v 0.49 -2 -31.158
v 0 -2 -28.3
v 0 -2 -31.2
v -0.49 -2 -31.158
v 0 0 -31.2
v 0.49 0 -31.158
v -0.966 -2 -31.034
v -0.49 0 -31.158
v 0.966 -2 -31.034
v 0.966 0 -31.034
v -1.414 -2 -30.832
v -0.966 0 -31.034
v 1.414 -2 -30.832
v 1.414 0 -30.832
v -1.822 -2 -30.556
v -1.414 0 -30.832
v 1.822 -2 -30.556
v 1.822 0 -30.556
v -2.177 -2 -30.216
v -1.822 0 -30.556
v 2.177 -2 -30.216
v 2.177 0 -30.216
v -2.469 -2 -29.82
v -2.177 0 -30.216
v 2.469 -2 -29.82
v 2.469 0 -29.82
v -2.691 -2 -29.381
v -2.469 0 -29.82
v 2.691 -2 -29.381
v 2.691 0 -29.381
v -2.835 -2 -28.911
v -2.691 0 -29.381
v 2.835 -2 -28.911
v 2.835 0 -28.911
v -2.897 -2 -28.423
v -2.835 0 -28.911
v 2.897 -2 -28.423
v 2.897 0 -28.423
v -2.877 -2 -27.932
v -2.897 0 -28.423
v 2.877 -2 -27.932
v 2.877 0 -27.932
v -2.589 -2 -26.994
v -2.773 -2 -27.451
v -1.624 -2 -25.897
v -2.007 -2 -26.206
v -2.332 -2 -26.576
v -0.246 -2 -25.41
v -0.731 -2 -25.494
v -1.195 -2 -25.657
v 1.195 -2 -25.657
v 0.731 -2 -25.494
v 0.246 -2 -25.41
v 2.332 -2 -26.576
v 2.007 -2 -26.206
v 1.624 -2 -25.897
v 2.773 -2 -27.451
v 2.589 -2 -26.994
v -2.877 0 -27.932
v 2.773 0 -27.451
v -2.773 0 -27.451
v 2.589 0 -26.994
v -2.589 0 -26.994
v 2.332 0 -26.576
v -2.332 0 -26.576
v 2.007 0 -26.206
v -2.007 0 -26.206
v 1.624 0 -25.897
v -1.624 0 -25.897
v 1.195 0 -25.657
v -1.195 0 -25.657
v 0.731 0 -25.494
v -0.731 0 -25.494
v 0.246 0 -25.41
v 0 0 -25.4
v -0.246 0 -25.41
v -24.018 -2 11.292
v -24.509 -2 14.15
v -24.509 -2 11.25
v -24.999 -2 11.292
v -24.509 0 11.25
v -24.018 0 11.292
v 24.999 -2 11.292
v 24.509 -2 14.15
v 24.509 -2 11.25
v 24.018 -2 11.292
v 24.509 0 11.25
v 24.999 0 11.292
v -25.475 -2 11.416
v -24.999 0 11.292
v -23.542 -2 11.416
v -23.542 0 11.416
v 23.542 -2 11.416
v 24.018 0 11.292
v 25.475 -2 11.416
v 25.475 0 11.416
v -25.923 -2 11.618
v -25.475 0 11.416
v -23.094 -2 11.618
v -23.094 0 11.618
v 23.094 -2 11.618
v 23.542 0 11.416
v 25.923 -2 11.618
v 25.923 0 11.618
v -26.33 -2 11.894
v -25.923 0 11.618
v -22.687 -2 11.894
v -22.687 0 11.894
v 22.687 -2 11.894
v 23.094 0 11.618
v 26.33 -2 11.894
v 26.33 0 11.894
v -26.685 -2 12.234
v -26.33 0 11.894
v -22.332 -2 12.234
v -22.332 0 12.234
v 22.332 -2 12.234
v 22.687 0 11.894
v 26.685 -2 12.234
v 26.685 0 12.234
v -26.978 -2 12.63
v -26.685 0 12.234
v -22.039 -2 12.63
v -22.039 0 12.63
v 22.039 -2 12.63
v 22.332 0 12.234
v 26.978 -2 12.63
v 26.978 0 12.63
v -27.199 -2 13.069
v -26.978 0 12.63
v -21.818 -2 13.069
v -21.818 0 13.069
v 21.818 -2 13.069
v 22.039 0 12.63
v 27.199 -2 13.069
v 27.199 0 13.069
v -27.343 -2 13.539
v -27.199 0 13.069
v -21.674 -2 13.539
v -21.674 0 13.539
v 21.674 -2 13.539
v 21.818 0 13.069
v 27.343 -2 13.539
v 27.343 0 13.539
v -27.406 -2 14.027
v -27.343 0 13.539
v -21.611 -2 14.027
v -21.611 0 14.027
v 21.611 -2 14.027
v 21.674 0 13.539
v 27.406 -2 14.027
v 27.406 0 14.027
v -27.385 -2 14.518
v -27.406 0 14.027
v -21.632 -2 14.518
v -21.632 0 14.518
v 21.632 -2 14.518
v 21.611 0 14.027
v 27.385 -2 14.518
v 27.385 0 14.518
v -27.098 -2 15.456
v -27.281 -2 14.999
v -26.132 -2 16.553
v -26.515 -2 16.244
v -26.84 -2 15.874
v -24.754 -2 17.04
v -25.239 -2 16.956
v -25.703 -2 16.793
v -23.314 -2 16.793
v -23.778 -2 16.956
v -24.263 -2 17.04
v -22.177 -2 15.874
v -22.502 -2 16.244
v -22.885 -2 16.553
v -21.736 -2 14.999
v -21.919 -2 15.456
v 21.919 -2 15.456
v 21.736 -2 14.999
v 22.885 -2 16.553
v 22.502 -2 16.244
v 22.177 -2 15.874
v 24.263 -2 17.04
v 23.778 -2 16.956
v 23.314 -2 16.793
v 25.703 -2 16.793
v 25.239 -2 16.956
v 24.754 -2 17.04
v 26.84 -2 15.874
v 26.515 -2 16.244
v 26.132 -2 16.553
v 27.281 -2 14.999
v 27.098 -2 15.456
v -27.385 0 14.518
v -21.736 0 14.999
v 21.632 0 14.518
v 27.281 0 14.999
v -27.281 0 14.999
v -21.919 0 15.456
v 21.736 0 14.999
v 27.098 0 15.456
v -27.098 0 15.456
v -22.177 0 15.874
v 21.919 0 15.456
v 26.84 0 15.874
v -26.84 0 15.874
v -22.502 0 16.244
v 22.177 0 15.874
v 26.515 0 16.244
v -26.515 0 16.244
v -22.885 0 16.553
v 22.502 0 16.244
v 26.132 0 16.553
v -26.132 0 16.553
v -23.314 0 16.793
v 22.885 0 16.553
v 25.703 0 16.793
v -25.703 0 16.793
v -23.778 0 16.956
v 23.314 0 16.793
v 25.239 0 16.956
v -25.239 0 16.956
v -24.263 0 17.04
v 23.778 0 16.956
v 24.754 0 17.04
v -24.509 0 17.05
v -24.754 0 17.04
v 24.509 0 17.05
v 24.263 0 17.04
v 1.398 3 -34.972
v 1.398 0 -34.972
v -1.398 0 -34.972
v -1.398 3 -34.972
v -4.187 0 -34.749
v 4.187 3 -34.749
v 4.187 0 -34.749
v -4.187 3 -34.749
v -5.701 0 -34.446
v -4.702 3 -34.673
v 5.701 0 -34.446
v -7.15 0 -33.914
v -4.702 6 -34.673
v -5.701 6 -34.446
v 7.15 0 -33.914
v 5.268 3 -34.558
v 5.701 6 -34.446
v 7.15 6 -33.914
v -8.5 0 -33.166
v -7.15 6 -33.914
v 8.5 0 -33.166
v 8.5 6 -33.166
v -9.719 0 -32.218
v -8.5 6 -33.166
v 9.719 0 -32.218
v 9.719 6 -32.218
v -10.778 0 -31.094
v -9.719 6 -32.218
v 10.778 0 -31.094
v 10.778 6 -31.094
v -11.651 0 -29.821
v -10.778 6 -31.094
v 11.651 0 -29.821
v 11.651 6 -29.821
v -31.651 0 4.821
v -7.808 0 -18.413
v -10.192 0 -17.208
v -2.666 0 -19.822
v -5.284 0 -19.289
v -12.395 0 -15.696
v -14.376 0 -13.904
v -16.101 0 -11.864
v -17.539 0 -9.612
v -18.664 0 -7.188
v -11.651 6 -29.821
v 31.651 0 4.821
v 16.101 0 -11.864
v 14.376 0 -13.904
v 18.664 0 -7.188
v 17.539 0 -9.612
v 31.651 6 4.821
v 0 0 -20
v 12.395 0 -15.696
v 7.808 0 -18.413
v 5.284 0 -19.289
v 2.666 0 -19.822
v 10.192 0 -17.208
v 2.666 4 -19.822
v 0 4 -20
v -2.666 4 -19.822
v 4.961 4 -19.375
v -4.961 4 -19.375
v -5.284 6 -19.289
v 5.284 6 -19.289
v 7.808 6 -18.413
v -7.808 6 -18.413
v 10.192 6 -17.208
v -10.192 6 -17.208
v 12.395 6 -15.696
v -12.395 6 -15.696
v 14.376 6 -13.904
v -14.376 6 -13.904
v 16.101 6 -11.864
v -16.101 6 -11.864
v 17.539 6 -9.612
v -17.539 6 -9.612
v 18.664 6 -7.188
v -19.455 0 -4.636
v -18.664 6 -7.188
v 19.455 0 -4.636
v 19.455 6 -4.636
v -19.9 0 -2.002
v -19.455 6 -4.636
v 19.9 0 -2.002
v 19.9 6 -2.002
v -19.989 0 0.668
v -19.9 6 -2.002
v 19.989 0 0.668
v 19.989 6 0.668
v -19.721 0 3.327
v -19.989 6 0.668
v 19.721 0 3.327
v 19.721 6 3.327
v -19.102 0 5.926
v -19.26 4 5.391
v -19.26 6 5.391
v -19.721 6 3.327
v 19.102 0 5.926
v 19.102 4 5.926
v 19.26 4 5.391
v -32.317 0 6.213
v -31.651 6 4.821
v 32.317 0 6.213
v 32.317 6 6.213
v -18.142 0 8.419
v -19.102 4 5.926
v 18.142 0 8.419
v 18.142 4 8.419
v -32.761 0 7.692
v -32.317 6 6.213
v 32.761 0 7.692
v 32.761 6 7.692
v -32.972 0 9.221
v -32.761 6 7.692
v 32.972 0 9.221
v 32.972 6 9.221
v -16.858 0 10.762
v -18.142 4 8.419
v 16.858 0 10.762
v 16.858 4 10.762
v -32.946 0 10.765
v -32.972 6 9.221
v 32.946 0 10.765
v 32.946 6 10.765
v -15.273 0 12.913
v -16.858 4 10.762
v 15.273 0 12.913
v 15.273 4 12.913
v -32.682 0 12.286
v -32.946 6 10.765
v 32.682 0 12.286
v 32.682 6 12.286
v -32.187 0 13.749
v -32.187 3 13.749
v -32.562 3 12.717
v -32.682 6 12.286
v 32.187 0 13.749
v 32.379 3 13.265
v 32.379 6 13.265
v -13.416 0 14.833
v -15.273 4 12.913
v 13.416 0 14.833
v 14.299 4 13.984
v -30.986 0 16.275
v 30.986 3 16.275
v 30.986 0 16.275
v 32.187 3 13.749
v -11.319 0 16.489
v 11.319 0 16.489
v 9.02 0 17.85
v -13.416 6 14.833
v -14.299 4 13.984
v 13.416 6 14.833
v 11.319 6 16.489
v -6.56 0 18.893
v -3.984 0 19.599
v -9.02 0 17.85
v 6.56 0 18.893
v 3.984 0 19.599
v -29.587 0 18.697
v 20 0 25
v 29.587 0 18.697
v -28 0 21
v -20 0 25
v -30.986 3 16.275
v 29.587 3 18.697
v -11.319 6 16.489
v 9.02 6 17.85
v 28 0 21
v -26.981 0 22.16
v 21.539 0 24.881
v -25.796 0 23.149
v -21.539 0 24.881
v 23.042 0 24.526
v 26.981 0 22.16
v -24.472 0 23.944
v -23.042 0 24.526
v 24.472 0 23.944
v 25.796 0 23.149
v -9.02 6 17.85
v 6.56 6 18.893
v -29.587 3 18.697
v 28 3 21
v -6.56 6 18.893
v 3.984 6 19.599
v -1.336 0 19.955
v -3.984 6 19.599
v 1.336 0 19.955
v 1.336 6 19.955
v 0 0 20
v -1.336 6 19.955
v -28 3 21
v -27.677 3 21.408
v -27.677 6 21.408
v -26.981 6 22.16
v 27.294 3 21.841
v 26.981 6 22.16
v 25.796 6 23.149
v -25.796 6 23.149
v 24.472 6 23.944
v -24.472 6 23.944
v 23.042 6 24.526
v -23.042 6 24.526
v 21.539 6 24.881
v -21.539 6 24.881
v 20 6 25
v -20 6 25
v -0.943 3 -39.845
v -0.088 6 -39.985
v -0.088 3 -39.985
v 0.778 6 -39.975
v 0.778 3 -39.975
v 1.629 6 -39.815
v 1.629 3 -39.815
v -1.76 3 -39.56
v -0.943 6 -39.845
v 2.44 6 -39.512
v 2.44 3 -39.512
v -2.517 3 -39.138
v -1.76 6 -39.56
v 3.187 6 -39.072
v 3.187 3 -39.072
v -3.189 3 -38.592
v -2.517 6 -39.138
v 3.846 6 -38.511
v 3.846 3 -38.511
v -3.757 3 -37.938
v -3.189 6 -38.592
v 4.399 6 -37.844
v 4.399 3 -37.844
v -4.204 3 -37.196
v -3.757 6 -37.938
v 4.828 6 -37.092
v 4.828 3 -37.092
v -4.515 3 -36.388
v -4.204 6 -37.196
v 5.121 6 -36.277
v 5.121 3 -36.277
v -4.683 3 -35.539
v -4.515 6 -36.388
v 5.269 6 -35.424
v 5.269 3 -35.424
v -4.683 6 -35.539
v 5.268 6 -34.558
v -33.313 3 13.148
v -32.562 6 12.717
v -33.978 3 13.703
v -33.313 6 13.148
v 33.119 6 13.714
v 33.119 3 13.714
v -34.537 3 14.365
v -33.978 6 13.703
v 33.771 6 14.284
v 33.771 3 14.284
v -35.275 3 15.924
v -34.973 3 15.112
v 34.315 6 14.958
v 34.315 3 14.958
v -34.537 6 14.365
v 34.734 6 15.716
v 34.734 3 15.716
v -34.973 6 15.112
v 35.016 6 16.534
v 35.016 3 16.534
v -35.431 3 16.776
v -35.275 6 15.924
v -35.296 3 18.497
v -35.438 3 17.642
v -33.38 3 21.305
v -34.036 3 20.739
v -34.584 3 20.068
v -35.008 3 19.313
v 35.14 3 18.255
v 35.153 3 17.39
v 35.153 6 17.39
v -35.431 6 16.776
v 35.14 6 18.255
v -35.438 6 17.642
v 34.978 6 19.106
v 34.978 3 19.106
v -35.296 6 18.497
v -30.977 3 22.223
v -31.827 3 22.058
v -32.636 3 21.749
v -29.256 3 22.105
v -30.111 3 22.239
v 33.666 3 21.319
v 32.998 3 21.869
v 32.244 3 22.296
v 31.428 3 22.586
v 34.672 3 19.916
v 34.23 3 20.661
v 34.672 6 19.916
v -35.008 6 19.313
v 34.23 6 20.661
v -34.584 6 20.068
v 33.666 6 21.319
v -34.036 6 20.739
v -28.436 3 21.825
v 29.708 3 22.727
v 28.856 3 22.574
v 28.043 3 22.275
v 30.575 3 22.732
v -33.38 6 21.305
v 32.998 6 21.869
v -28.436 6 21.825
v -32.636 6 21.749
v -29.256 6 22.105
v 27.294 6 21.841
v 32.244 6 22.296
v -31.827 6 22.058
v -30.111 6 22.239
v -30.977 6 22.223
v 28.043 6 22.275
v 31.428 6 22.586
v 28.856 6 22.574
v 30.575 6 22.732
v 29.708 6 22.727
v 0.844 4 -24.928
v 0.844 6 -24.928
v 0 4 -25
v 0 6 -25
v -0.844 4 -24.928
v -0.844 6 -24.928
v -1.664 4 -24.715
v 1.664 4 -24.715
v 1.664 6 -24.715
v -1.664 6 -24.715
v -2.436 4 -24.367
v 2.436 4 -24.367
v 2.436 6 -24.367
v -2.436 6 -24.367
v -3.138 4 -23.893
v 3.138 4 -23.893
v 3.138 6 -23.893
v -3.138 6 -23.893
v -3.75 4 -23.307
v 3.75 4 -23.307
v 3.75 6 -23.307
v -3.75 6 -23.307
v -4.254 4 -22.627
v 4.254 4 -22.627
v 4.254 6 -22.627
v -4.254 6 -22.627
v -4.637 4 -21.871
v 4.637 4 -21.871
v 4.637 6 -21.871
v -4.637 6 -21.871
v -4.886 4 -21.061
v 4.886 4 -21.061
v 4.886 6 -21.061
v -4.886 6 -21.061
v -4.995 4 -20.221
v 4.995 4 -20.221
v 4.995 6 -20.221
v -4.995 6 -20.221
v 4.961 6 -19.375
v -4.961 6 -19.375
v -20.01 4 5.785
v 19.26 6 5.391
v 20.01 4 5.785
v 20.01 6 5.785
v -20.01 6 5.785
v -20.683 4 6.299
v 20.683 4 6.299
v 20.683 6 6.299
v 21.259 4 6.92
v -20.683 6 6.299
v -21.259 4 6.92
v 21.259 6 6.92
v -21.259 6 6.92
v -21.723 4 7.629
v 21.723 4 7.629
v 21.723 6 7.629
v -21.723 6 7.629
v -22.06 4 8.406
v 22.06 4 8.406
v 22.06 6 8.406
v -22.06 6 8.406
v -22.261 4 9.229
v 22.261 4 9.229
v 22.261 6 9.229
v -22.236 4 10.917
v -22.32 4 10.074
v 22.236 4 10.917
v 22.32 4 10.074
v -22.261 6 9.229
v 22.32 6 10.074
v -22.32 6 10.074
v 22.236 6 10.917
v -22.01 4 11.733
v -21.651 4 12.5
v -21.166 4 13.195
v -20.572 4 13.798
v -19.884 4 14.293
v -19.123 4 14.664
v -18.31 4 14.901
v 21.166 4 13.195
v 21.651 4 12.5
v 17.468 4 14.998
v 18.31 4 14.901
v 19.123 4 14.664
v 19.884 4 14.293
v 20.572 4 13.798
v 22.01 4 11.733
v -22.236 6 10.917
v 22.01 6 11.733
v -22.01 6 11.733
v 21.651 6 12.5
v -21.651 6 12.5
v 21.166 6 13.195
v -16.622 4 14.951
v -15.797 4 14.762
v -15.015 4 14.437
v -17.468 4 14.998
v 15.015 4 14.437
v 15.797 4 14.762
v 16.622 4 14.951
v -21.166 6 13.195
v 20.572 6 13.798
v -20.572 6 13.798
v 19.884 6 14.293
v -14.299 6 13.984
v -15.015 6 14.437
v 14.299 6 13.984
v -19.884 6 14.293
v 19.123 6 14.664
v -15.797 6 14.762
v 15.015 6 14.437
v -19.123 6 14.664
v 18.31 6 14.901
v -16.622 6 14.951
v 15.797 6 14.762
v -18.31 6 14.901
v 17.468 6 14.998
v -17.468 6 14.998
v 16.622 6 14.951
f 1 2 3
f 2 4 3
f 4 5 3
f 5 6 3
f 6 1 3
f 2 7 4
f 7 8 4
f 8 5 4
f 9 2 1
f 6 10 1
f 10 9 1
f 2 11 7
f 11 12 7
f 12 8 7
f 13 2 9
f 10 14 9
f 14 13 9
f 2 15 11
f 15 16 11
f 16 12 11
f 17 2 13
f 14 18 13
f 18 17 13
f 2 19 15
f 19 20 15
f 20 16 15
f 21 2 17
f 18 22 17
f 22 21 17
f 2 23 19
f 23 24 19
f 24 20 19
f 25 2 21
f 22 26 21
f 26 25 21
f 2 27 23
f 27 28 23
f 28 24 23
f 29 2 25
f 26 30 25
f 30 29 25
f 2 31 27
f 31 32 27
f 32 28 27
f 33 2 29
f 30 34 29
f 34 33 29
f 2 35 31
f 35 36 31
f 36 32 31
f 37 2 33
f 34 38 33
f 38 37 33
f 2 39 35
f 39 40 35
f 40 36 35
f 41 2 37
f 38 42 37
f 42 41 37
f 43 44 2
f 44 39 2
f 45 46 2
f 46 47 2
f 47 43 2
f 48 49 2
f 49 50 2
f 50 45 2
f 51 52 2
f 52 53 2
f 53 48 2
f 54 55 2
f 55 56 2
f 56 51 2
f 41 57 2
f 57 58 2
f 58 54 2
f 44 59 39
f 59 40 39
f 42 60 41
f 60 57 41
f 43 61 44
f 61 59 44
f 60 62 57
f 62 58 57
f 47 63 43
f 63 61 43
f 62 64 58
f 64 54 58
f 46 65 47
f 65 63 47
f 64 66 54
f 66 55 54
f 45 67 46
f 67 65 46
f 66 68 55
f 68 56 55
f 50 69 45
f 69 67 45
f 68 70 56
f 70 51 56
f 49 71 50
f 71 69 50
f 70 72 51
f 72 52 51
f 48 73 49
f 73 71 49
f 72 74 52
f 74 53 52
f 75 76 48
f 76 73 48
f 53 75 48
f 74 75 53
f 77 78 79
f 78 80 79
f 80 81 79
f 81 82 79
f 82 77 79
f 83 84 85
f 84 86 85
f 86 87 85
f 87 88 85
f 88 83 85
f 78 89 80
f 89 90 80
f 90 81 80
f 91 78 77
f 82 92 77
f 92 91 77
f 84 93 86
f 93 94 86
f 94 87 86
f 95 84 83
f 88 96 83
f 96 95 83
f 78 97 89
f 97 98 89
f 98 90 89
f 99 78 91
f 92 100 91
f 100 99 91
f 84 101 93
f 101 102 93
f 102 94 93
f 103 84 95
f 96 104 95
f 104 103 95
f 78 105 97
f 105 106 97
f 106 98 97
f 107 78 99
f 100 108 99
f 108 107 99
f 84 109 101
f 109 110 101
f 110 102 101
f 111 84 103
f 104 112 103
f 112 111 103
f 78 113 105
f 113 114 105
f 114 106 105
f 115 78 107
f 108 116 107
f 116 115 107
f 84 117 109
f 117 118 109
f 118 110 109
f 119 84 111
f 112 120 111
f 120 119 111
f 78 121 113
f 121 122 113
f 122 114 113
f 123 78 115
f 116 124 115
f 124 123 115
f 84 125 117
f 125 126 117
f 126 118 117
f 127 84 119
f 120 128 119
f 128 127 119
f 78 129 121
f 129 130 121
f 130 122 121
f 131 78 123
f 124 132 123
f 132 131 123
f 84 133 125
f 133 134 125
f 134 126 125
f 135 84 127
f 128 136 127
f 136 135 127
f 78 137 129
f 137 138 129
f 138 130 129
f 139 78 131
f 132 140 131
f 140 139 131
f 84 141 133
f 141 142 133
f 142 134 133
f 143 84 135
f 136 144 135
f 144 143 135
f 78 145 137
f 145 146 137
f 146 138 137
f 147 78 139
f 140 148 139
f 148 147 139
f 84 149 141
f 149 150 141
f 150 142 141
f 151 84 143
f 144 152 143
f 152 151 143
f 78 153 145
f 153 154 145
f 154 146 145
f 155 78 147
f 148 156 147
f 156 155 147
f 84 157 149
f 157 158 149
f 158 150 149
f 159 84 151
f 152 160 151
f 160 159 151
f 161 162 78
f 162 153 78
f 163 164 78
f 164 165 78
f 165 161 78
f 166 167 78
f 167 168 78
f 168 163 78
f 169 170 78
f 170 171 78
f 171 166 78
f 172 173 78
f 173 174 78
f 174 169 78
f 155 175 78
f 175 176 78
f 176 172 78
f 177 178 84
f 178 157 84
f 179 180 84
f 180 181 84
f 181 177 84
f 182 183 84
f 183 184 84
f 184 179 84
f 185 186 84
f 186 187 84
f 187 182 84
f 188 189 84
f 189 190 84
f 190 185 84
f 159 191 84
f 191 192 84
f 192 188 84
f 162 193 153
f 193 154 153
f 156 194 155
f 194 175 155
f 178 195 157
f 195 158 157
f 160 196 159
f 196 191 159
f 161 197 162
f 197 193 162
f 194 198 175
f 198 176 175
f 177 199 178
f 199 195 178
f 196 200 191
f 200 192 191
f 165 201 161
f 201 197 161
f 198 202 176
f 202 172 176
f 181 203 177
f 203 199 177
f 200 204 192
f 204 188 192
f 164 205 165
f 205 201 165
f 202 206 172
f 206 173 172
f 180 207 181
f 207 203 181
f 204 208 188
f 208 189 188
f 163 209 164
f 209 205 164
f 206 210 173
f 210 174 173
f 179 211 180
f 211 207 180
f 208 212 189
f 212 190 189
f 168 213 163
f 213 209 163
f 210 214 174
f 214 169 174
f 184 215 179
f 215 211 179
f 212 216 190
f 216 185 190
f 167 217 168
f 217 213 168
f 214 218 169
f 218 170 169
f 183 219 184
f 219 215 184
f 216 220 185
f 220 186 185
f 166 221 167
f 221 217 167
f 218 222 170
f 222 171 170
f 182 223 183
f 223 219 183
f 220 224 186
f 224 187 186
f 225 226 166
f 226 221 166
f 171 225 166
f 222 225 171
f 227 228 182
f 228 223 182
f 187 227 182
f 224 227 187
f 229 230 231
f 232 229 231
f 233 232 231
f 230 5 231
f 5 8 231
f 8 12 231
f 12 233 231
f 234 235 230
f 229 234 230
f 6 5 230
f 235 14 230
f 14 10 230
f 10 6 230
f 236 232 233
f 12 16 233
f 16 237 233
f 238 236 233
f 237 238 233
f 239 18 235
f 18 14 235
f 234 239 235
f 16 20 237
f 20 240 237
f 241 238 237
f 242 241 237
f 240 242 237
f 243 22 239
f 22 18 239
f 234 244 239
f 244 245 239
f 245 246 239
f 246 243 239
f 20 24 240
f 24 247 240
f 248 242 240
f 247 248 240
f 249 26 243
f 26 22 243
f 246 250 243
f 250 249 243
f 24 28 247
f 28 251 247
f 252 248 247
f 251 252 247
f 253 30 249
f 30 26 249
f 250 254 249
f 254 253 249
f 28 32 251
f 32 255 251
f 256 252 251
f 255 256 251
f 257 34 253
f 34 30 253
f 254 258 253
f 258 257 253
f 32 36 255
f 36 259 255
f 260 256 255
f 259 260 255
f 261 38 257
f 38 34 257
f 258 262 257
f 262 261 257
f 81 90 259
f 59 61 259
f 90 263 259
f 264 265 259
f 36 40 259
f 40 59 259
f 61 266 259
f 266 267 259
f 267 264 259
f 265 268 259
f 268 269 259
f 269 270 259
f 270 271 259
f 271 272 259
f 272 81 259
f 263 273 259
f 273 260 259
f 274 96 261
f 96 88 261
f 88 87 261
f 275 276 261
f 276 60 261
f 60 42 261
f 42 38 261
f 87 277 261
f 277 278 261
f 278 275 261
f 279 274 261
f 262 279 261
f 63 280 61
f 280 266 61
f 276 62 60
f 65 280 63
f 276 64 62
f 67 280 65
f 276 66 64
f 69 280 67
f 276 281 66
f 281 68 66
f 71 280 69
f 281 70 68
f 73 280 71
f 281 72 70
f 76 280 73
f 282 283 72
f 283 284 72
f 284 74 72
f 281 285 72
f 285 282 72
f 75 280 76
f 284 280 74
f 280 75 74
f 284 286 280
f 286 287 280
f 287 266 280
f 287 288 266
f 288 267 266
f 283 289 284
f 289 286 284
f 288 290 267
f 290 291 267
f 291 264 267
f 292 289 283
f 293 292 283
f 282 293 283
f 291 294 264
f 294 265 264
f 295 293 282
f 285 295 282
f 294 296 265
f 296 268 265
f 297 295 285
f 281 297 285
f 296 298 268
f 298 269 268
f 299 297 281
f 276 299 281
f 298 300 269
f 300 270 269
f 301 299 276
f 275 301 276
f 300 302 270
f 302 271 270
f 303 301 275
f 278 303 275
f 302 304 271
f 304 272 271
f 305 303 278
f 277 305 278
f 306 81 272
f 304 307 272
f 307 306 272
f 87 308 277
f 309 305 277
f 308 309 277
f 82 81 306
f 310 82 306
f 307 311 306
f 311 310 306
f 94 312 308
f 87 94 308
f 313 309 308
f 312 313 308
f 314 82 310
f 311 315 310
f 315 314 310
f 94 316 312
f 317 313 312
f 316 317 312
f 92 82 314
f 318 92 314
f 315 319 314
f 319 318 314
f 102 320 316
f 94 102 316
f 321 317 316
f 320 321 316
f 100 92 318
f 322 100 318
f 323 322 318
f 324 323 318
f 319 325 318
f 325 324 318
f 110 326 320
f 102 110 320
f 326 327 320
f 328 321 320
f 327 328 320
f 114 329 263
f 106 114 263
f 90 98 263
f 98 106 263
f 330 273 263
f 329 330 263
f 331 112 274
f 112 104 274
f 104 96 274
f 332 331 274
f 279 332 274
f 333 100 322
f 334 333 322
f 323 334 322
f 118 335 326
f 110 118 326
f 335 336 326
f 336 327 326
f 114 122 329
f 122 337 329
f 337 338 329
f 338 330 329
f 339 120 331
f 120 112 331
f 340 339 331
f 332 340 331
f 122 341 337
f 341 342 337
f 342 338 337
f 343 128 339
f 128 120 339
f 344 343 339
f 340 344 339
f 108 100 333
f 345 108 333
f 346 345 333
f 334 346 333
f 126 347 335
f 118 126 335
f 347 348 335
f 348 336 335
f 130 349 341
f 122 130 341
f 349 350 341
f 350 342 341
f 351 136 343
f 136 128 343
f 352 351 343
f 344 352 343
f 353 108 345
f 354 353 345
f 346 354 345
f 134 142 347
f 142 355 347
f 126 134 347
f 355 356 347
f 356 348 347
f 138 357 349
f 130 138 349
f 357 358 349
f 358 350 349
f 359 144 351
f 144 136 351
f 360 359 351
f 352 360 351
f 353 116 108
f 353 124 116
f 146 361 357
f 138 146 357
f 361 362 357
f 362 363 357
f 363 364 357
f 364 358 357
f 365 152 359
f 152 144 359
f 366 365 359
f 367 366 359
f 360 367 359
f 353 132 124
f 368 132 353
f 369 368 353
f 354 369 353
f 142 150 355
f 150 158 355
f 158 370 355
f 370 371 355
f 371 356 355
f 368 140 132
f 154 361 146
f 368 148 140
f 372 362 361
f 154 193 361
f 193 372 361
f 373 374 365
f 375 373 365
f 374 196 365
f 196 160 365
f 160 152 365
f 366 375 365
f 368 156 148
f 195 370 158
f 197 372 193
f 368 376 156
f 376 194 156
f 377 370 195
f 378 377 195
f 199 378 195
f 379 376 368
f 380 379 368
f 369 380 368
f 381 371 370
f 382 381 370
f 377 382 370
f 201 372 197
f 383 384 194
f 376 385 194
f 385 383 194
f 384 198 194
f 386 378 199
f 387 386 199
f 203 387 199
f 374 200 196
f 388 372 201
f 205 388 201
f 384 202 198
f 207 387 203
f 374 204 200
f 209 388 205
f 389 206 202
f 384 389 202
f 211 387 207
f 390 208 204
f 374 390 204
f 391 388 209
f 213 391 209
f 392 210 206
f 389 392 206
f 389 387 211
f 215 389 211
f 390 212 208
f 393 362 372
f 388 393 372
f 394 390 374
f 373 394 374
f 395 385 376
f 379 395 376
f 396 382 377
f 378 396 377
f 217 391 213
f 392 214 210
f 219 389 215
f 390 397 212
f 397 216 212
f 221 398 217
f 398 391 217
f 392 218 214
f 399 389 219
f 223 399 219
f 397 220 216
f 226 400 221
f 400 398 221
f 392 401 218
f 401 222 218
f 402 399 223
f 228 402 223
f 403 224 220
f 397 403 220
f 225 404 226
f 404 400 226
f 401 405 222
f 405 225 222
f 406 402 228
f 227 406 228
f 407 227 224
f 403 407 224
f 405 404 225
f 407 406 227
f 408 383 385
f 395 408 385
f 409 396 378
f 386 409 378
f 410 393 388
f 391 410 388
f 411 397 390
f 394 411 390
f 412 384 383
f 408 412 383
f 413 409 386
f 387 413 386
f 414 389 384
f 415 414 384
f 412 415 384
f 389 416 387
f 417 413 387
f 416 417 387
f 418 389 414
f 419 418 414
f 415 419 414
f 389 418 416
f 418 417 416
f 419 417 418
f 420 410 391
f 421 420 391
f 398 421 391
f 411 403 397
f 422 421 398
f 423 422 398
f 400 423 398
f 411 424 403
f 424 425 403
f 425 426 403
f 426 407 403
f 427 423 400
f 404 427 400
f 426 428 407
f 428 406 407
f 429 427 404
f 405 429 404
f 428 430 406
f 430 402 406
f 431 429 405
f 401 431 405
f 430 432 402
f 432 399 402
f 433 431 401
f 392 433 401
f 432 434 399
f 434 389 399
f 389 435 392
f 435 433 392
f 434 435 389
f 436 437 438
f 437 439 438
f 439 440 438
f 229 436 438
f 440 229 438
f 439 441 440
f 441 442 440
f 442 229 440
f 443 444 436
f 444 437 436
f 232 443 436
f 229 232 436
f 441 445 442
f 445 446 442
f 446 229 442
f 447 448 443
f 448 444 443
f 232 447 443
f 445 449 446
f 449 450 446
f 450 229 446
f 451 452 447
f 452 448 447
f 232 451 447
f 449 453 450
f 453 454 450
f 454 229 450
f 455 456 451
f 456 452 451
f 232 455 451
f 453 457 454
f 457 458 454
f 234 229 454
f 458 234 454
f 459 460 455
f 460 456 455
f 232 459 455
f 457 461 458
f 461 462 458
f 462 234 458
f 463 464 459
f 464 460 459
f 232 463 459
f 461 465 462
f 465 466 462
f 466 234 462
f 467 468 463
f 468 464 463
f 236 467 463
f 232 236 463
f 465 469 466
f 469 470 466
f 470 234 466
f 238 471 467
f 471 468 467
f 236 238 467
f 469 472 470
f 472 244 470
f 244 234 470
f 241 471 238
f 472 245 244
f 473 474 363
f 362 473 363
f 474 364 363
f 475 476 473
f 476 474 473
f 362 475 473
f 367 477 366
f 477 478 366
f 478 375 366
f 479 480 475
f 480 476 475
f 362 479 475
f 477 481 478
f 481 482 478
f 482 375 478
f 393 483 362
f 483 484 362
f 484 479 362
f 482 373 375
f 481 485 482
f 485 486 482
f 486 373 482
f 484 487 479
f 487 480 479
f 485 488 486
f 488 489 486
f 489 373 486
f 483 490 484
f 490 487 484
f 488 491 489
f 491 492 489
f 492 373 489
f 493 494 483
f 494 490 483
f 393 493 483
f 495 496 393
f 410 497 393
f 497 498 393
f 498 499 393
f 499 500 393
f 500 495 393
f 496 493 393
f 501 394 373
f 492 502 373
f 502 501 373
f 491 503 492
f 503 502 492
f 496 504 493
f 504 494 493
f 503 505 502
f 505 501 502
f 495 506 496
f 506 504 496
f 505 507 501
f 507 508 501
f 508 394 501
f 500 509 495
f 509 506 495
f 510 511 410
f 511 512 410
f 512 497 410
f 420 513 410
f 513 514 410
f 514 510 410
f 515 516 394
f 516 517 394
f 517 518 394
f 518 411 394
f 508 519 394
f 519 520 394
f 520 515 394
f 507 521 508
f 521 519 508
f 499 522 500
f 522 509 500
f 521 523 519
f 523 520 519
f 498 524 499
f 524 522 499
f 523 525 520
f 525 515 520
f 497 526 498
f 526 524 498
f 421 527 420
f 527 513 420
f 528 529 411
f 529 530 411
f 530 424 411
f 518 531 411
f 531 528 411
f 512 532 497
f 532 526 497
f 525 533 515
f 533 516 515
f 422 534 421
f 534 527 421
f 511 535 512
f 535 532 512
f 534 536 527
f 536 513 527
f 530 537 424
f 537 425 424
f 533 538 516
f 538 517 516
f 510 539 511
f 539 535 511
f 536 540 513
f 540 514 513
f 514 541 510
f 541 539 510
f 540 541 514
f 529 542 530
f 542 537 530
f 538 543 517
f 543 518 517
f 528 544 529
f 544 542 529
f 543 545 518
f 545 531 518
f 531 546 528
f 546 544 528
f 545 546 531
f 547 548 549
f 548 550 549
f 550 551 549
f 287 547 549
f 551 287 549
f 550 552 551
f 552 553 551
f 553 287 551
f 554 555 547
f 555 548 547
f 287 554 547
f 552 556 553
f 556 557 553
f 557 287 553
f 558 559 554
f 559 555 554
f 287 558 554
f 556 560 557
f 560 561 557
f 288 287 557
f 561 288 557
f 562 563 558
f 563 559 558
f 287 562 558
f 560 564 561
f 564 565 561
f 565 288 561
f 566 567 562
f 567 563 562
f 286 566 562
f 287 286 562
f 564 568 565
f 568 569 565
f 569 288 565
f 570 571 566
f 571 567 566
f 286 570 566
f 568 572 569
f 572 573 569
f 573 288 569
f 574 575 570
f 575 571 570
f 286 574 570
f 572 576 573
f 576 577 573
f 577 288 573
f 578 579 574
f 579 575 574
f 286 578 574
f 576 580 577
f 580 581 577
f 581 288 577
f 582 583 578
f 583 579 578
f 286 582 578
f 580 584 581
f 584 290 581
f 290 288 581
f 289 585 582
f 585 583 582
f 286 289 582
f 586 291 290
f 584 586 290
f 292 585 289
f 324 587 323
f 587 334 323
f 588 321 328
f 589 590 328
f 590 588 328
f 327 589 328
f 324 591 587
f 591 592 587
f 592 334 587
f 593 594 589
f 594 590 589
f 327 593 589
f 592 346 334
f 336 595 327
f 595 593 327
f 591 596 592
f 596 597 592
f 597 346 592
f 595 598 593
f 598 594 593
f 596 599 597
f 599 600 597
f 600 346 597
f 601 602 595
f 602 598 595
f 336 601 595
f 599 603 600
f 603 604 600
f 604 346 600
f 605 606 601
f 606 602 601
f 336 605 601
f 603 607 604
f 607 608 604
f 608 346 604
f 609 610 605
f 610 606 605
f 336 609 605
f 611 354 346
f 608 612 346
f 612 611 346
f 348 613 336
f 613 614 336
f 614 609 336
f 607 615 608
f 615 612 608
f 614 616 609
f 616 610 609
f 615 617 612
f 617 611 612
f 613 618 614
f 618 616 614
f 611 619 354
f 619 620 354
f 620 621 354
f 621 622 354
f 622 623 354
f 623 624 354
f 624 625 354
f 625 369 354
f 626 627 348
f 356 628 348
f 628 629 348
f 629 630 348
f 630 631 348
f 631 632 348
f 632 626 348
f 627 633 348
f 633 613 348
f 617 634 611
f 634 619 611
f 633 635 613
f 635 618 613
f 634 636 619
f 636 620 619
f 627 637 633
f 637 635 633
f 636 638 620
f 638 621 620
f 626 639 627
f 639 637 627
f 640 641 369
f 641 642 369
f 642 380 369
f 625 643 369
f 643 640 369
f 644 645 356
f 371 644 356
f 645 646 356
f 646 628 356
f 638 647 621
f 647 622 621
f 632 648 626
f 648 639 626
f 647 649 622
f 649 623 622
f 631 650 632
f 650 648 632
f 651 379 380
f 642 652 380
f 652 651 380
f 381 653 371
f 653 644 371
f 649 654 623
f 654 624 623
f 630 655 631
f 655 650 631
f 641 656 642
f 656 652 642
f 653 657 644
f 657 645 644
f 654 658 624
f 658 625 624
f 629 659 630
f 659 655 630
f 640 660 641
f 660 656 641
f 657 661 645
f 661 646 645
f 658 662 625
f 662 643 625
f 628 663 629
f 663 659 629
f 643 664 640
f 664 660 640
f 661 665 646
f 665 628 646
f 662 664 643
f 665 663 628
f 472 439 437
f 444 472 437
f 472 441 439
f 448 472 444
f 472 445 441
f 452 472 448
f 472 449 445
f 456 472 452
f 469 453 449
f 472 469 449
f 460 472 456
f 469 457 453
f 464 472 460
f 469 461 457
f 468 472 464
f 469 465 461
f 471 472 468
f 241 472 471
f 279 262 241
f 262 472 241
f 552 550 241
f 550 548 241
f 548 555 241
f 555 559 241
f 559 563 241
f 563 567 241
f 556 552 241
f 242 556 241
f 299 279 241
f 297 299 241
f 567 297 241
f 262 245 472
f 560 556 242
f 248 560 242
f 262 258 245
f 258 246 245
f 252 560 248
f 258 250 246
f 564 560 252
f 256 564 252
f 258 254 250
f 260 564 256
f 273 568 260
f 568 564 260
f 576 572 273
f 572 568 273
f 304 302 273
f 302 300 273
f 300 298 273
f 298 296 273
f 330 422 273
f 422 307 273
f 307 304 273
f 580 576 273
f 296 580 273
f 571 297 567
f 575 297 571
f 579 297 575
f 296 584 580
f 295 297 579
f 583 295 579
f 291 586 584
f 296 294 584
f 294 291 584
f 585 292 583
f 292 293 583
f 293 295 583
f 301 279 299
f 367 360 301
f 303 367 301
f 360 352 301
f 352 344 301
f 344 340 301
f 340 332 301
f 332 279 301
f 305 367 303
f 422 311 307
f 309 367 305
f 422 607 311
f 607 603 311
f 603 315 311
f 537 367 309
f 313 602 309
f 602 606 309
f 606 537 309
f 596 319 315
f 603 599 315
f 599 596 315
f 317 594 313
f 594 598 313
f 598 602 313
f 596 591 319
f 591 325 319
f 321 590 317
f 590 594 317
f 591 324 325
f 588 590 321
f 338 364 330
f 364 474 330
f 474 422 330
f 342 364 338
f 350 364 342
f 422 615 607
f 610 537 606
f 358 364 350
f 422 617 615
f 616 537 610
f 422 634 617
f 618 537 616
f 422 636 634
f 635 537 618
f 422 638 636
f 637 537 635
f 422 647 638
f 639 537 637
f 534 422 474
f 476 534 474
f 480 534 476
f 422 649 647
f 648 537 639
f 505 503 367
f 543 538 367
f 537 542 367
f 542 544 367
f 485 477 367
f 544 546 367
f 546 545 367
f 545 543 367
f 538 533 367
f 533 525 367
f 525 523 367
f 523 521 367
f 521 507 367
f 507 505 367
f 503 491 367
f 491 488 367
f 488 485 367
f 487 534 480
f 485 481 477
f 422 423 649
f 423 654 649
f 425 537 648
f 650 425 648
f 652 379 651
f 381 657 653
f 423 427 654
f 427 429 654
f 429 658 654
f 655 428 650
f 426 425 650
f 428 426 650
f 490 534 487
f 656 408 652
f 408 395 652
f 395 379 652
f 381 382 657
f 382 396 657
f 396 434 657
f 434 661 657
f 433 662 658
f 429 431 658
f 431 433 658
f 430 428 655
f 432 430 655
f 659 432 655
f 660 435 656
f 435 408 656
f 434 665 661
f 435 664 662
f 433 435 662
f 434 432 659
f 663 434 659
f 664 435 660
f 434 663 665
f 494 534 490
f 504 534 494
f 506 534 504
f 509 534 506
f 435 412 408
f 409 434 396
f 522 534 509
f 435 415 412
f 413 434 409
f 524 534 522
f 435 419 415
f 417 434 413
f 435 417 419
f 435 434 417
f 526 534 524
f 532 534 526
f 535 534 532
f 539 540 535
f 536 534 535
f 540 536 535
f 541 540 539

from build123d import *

# Parameters (mm, degrees)
SKETCH1_R                = 20
BOSS_EXTRUDE1_DEPTH      = 3.5
SKETCH2_R                = 35
SKETCH2_R_2              = 20
SKETCH2_R_3              = 2.8
BOSS_EXTRUDE2_DEPTH      = 6
BOSS_EXTRUDE3_DEPTH      = 2
BOSS_EXTRUDE3_DEPTH_BACK = 6
SKETCH4_R                = 2.9
SKETCH5_R                = 5
BOSS_EXTRUDE4_DEPTH      = 3
CUT_EXTRUDE1_START       = -10
SKETCH3_R                = 20
CUT_EXTRUDE1_DEPTH       = 10
SKETCH12_R               = 72.135852014
CUT_EXTRUDE2_DEPTH       = 22
FILLET1_R                = 10
CUT_EXTRUDE4_START       = -2
SKETCH15_R               = 5
SKETCH15_R_2             = 20
CUT_EXTRUDE4_DEPTH       = 2


with BuildPart() as part:
    # Sketch1 → Boss-Extrude1 (new body)
    with BuildSketch(Plane(origin=(0, 0, 0), x_dir=(1, 0, 0), z_dir=(0, 1, 0))):
        with Locations(Location((0, 0, 0), (0, 0, 270))):
            Circle(SKETCH1_R)
    extrude(amount=BOSS_EXTRUDE1_DEPTH)

    # Sketch2 → Boss-Extrude2 (add)
    with BuildSketch(Plane(origin=(0, 0, 0), x_dir=(1, 0, 0), z_dir=(0, 1, 0))):
        with Locations(Location((0, 0, 0), (0, 0, 270))):
            Circle(SKETCH2_R)
        with Locations(Location((0, 0, 0), (0, 0, 270))):
            Circle(SKETCH2_R_2, mode=Mode.SUBTRACT)
        with Locations(Location((0, 28.3, 0), (0, 0, 270))):
            Circle(SKETCH2_R_3, mode=Mode.SUBTRACT)
        with Locations(Location((24.508518927, -14.15, 0), (0, 0, 270))):
            Circle(SKETCH2_R_3, mode=Mode.SUBTRACT)
        with Locations(Location((-24.508518927, -14.15, 0), (0, 0, 270))):
            Circle(SKETCH2_R_3, mode=Mode.SUBTRACT)
    extrude(amount=BOSS_EXTRUDE2_DEPTH)

    # Sketch4 → Boss-Extrude3 (add, two sides: drawn at the far end of the back side and taken through both)
    with BuildSketch(Plane.XZ.offset(-BOSS_EXTRUDE3_DEPTH_BACK)):
        with Locations(Location((-24.508518927, 14.15, 0), (0, 0, 270))):
            Circle(SKETCH4_R)
        with Locations(Location((24.508518927, 14.15, 0), (0, 0, 270))):
            Circle(SKETCH4_R)
        with Locations(Location((0, -28.3, 0), (0, 0, 270))):
            Circle(SKETCH4_R)
    extrude(amount=BOSS_EXTRUDE3_DEPTH + BOSS_EXTRUDE3_DEPTH_BACK)

    # Sketch5 → Boss-Extrude4 (add)
    with BuildSketch(Plane(origin=(0, 6, 0), x_dir=(1, 0, 0), z_dir=(0, 1, 0))):
        with Locations((-30.453629482, -17.250404383)):
            Circle(SKETCH5_R)
        with Locations((0.28752632, 34.99881896)):
            Circle(SKETCH5_R)
        with Locations((30.166103162, -17.748414577)):
            Circle(SKETCH5_R)
    extrude(amount=-BOSS_EXTRUDE4_DEPTH)

    # Sketch3 → Cut-Extrude1 (cut)
    with BuildSketch(Plane(origin=(0, 3.5, 0), x_dir=(1, 0, 0), z_dir=(0, 1, 0)).offset(CUT_EXTRUDE1_START)):
        with Locations(Location((0, 0, 0), (0, 0, 270))):
            Circle(SKETCH3_R)
    extrude(amount=CUT_EXTRUDE1_DEPTH, mode=Mode.SUBTRACT)

    # Sketch12 → Cut-Extrude2 (cut)
    with BuildSketch(Plane(origin=(0, 6, 0), x_dir=(1, 0, 0), z_dir=(0, 1, 0))):
        Circle(SKETCH12_R)
        Polygon((0, 50), (-43.301270189, -25), (43.301270189, -25), align=None, mode=Mode.SUBTRACT)
    extrude(amount=-CUT_EXTRUDE2_DEPTH, mode=Mode.SUBTRACT)

    # Fillet1
    # the kernel refuses this fillet: 10 mm, written as the material it takes off along each edge
    with BuildSketch(Plane(origin=(-24.494897428, 19.2960859, 25), x_dir=(1, 0, 0), z_dir=(0, -1, 0))) as fillet1_piece_1_section:
        with BuildLine():
            CenterArc((4.494897428, -10), FILLET1_R, 90, 53.130102354)
            ThreePointArc((-3.505102572, -4), (-1.828638885, -1.933326291), (0, 0))
            Line((0, 0), (4.494897428, 0))
        make_face()
    fillet1_piece_1 = extrude(amount=32.5921718, mode=Mode.PRIVATE)
    fillet1_piece_1 = fillet1_piece_1 - Plane(origin=(-30.453629482, 4.5, 17.250404383), x_dir=(1, 0, 0), z_dir=(0, 1, 0)) * Cylinder(5, 84, mode=Mode.PRIVATE)
    add(fillet1_piece_1, mode=Mode.SUBTRACT)
    with BuildSketch(Plane(origin=(-24.494897428, 19.2960859, 25), x_dir=(1, 0, 0), z_dir=(0, -1, 0))) as fillet1_piece_2_section:
        with BuildLine():
            CenterArc((4.494897428, -10), FILLET1_R, 90, 53.130102354)
            ThreePointArc((-3.505102572, -4), (-1.828638885, -1.933326291), (0, 0))
            Line((0, 0), (4.494897428, 0))
        make_face()
    fillet1_piece_2 = extrude(amount=32.5921718, mode=Mode.PRIVATE)
    fillet1_piece_2 = split(fillet1_piece_2, bisect_by=Plane(origin=(-27.761621835, 3, 21.309124186), z_dir=(0, -1, 0)), keep=Keep.TOP, mode=Mode.PRIVATE)
    add(fillet1_piece_2, mode=Mode.SUBTRACT)
    with BuildSketch(Plane(origin=(24.494897428, 19.2960859, 25), x_dir=(-1, 0, 0), z_dir=(0, -1, 0))) as fillet1_piece_3_section:
        with BuildLine():
            CenterArc((4.494897428, 10), FILLET1_R, 216.869897646, 53.130102354)
            ThreePointArc((-3.505102572, 4), (-1.828638885, 1.933326291), (0, 0))
            Line((0, 0), (4.494897428, 0))
        make_face()
    fillet1_piece_3 = extrude(amount=32.5921718, mode=Mode.PRIVATE)
    fillet1_piece_3 = fillet1_piece_3 - Plane(origin=(30.166103162, 4.5, 17.748414577), x_dir=(1, 0, 0), z_dir=(0, 1, 0)) * Cylinder(5, 84, mode=Mode.PRIVATE)
    add(fillet1_piece_3, mode=Mode.SUBTRACT)
    with BuildSketch(Plane(origin=(24.494897428, 19.2960859, 25), x_dir=(-1, 0, 0), z_dir=(0, -1, 0))) as fillet1_piece_4_section:
        with BuildLine():
            CenterArc((4.494897428, 10), FILLET1_R, 216.869897646, 53.130102354)
            ThreePointArc((-3.505102572, 4), (-1.828638885, 1.933326291), (0, 0))
            Line((0, 0), (4.494897428, 0))
        make_face()
    fillet1_piece_4 = extrude(amount=32.5921718, mode=Mode.PRIVATE)
    fillet1_piece_4 = split(fillet1_piece_4, bisect_by=Plane(origin=(27.488157838, 3, 21.643747381), z_dir=(0, -1, 0)), keep=Keep.TOP, mode=Mode.PRIVATE)
    add(fillet1_piece_4, mode=Mode.SUBTRACT)
    with BuildSketch(Plane(origin=(-9.403186381, 19.2960859, -33.713203436), x_dir=(-0.5000000000000003, 0, 0.8660254037844386), z_dir=(0, -1, 0))) as fillet1_piece_5_section:
        with BuildLine():
            CenterArc((4.494897428, -10), FILLET1_R, 90, 53.130102354)
            ThreePointArc((-3.505102572, -4), (-1.828638885, -1.933326291), (0, 0))
            Line((0, 0), (4.494897428, 0))
        make_face()
    fillet1_piece_5 = extrude(amount=32.5921718, mode=Mode.PRIVATE)
    fillet1_piece_5 = fillet1_piece_5 - Plane(origin=(0.28752632, 4.5, -34.99881896), x_dir=(1, 0, 0), z_dir=(0, 1, 0)) * Cylinder(5, 84, mode=Mode.PRIVATE)
    add(fillet1_piece_5, mode=Mode.SUBTRACT)
    with BuildSketch(Plane(origin=(-9.403186381, 19.2960859, -33.713203436), x_dir=(-0.5000000000000003, 0, 0.8660254037844386), z_dir=(0, -1, 0))) as fillet1_piece_6_section:
        with BuildLine():
            CenterArc((4.494897428, -10), FILLET1_R, 90, 53.130102354)
            ThreePointArc((-3.505102572, -4), (-1.828638885, -1.933326291), (0, 0))
            Line((0, 0), (4.494897428, 0))
        make_face()
    fillet1_piece_6 = extrude(amount=32.5921718, mode=Mode.PRIVATE)
    fillet1_piece_6 = split(fillet1_piece_6, bisect_by=Plane(origin=(-4.57343196, 3, -34.696831852), z_dir=(0, -1, 0)), keep=Keep.TOP, mode=Mode.PRIVATE)
    add(fillet1_piece_6, mode=Mode.SUBTRACT)
    with BuildSketch(Plane(origin=(-33.898083809, 19.2960859, 8.713203436), x_dir=(0.32181469455231854, 0, 0.9468026734067654), z_dir=(0, -1, 0))) as fillet1_piece_7_section:
        with BuildLine():
            CenterArc((4.558658023, -9.971095222), FILLET1_R, 85.642603122, 53.130102354)
            Line((-2.962352352, -3.380617019), (0, 0))
            ThreePointArc((0, 0), (2.65921718, 0.101166725), (5.31843436, 0))
        make_face()
    fillet1_piece_7 = extrude(amount=32.5921718, mode=Mode.PRIVATE)
    fillet1_piece_7 = fillet1_piece_7 - Plane(origin=(-30.453629482, 4.5, 17.250404383), x_dir=(1, 0, 0), z_dir=(0, 1, 0)) * Cylinder(5, 87, mode=Mode.PRIVATE)
    add(fillet1_piece_7, mode=Mode.SUBTRACT)
    with BuildSketch(Plane(origin=(-33.898083809, 19.2960859, 8.713203436), x_dir=(0.32181469455231854, 0, 0.9468026734067654), z_dir=(0, -1, 0))) as fillet1_piece_8_section:
        with BuildLine():
            CenterArc((4.558658023, -9.971095222), FILLET1_R, 85.642603122, 53.130102354)
            Line((-2.962352352, -3.380617019), (0, 0))
            ThreePointArc((0, 0), (2.65921718, 0.101166725), (5.31843436, 0))
        make_face()
    fillet1_piece_8 = extrude(amount=32.5921718, mode=Mode.PRIVATE)
    fillet1_piece_8 = split(fillet1_piece_8, bisect_by=Plane(origin=(-32.488113984, 3, 12.9835693), z_dir=(0, -1, 0)), keep=Keep.TOP, mode=Mode.PRIVATE)
    add(fillet1_piece_8, mode=Mode.SUBTRACT)
    with BuildSketch(Plane(origin=(33.898083809, 19.2960859, 8.713203436), x_dir=(-0.5000000000000012, 0, -0.8660254037844382), z_dir=(0, -1, 0))) as fillet1_piece_9_section:
        with BuildLine():
            CenterArc((4.494897428, -10), FILLET1_R, 90, 53.130102354)
            ThreePointArc((-3.505102572, -4), (-1.828638885, -1.933326291), (0, 0))
            Line((0, 0), (4.494897428, 0))
        make_face()
    fillet1_piece_9 = extrude(amount=32.5921718, mode=Mode.PRIVATE)
    fillet1_piece_9 = fillet1_piece_9 - Plane(origin=(30.166103162, 4.5, 17.748414577), x_dir=(1, 0, 0), z_dir=(0, 1, 0)) * Cylinder(5, 84, mode=Mode.PRIVATE)
    add(fillet1_piece_9, mode=Mode.SUBTRACT)
    with BuildSketch(Plane(origin=(33.898083809, 19.2960859, 8.713203436), x_dir=(-0.5000000000000012, 0, -0.8660254037844382), z_dir=(0, -1, 0))) as fillet1_piece_10_section:
        with BuildLine():
            CenterArc((4.494897428, -10), FILLET1_R, 90, 53.130102354)
            ThreePointArc((-3.505102572, -4), (-1.828638885, -1.933326291), (0, 0))
            Line((0, 0), (4.494897428, 0))
        make_face()
    fillet1_piece_10 = extrude(amount=32.5921718, mode=Mode.PRIVATE)
    fillet1_piece_10 = split(fillet1_piece_10, bisect_by=Plane(origin=(32.335053795, 3, 13.387707666), z_dir=(0, -1, 0)), keep=Keep.TOP, mode=Mode.PRIVATE)
    add(fillet1_piece_10, mode=Mode.SUBTRACT)
    with BuildSketch(Plane(origin=(9.403186381, 19.2960859, -33.713203436), x_dir=(-0.9808625148174394, 0, -0.19470163590994477), z_dir=(0, -1, 0))) as fillet1_piece_11_section:
        with BuildLine():
            CenterArc((4.558658023, -9.971095222), FILLET1_R, 85.642603122, 53.130102354)
            Line((-2.962352352, -3.380617019), (0, 0))
            ThreePointArc((0, 0), (2.65921718, 0.101166725), (5.31843436, 0))
        make_face()
    fillet1_piece_11 = extrude(amount=32.5921718, mode=Mode.PRIVATE)
    fillet1_piece_11 = fillet1_piece_11 - Plane(origin=(0.28752632, 4.5, -34.99881896), x_dir=(1, 0, 0), z_dir=(0, 1, 0)) * Cylinder(5, 87, mode=Mode.PRIVATE)
    add(fillet1_piece_11, mode=Mode.SUBTRACT)
    with BuildSketch(Plane(origin=(9.403186381, 19.2960859, -33.713203436), x_dir=(-0.9808625148174394, 0, -0.19470163590994477), z_dir=(0, -1, 0))) as fillet1_piece_12_section:
        with BuildLine():
            CenterArc((4.558658023, -9.971095222), FILLET1_R, 85.642603122, 53.130102354)
            Line((-2.962352352, -3.380617019), (0, 0))
            ThreePointArc((0, 0), (2.65921718, 0.101166725), (5.31843436, 0))
        make_face()
    fillet1_piece_12 = extrude(amount=32.5921718, mode=Mode.PRIVATE)
    fillet1_piece_12 = split(fillet1_piece_12, bisect_by=Plane(origin=(4.999956146, 3, -34.627316681), z_dir=(0, -1, 0)), keep=Keep.TOP, mode=Mode.PRIVATE)
    add(fillet1_piece_12, mode=Mode.SUBTRACT)

    # Sketch15 → Cut-Extrude4 (cut)
    with BuildSketch(Plane(origin=(0, 6, 0), x_dir=(1, 0, 0), z_dir=(0, 1, 0)).offset(CUT_EXTRUDE4_START)):
        with Locations((0, 20)):
            Circle(SKETCH15_R)
        with Locations(Location((0, 0, 0), (0, 0, 104.361511563))):
            Circle(SKETCH15_R_2)
        with Locations((-17.320508076, -10)):
            Circle(SKETCH15_R)
        with Locations((17.320508076, -10)):
            Circle(SKETCH15_R)
    extrude(amount=CUT_EXTRUDE4_DEPTH, mode=Mode.SUBTRACT)


solid = part.part
